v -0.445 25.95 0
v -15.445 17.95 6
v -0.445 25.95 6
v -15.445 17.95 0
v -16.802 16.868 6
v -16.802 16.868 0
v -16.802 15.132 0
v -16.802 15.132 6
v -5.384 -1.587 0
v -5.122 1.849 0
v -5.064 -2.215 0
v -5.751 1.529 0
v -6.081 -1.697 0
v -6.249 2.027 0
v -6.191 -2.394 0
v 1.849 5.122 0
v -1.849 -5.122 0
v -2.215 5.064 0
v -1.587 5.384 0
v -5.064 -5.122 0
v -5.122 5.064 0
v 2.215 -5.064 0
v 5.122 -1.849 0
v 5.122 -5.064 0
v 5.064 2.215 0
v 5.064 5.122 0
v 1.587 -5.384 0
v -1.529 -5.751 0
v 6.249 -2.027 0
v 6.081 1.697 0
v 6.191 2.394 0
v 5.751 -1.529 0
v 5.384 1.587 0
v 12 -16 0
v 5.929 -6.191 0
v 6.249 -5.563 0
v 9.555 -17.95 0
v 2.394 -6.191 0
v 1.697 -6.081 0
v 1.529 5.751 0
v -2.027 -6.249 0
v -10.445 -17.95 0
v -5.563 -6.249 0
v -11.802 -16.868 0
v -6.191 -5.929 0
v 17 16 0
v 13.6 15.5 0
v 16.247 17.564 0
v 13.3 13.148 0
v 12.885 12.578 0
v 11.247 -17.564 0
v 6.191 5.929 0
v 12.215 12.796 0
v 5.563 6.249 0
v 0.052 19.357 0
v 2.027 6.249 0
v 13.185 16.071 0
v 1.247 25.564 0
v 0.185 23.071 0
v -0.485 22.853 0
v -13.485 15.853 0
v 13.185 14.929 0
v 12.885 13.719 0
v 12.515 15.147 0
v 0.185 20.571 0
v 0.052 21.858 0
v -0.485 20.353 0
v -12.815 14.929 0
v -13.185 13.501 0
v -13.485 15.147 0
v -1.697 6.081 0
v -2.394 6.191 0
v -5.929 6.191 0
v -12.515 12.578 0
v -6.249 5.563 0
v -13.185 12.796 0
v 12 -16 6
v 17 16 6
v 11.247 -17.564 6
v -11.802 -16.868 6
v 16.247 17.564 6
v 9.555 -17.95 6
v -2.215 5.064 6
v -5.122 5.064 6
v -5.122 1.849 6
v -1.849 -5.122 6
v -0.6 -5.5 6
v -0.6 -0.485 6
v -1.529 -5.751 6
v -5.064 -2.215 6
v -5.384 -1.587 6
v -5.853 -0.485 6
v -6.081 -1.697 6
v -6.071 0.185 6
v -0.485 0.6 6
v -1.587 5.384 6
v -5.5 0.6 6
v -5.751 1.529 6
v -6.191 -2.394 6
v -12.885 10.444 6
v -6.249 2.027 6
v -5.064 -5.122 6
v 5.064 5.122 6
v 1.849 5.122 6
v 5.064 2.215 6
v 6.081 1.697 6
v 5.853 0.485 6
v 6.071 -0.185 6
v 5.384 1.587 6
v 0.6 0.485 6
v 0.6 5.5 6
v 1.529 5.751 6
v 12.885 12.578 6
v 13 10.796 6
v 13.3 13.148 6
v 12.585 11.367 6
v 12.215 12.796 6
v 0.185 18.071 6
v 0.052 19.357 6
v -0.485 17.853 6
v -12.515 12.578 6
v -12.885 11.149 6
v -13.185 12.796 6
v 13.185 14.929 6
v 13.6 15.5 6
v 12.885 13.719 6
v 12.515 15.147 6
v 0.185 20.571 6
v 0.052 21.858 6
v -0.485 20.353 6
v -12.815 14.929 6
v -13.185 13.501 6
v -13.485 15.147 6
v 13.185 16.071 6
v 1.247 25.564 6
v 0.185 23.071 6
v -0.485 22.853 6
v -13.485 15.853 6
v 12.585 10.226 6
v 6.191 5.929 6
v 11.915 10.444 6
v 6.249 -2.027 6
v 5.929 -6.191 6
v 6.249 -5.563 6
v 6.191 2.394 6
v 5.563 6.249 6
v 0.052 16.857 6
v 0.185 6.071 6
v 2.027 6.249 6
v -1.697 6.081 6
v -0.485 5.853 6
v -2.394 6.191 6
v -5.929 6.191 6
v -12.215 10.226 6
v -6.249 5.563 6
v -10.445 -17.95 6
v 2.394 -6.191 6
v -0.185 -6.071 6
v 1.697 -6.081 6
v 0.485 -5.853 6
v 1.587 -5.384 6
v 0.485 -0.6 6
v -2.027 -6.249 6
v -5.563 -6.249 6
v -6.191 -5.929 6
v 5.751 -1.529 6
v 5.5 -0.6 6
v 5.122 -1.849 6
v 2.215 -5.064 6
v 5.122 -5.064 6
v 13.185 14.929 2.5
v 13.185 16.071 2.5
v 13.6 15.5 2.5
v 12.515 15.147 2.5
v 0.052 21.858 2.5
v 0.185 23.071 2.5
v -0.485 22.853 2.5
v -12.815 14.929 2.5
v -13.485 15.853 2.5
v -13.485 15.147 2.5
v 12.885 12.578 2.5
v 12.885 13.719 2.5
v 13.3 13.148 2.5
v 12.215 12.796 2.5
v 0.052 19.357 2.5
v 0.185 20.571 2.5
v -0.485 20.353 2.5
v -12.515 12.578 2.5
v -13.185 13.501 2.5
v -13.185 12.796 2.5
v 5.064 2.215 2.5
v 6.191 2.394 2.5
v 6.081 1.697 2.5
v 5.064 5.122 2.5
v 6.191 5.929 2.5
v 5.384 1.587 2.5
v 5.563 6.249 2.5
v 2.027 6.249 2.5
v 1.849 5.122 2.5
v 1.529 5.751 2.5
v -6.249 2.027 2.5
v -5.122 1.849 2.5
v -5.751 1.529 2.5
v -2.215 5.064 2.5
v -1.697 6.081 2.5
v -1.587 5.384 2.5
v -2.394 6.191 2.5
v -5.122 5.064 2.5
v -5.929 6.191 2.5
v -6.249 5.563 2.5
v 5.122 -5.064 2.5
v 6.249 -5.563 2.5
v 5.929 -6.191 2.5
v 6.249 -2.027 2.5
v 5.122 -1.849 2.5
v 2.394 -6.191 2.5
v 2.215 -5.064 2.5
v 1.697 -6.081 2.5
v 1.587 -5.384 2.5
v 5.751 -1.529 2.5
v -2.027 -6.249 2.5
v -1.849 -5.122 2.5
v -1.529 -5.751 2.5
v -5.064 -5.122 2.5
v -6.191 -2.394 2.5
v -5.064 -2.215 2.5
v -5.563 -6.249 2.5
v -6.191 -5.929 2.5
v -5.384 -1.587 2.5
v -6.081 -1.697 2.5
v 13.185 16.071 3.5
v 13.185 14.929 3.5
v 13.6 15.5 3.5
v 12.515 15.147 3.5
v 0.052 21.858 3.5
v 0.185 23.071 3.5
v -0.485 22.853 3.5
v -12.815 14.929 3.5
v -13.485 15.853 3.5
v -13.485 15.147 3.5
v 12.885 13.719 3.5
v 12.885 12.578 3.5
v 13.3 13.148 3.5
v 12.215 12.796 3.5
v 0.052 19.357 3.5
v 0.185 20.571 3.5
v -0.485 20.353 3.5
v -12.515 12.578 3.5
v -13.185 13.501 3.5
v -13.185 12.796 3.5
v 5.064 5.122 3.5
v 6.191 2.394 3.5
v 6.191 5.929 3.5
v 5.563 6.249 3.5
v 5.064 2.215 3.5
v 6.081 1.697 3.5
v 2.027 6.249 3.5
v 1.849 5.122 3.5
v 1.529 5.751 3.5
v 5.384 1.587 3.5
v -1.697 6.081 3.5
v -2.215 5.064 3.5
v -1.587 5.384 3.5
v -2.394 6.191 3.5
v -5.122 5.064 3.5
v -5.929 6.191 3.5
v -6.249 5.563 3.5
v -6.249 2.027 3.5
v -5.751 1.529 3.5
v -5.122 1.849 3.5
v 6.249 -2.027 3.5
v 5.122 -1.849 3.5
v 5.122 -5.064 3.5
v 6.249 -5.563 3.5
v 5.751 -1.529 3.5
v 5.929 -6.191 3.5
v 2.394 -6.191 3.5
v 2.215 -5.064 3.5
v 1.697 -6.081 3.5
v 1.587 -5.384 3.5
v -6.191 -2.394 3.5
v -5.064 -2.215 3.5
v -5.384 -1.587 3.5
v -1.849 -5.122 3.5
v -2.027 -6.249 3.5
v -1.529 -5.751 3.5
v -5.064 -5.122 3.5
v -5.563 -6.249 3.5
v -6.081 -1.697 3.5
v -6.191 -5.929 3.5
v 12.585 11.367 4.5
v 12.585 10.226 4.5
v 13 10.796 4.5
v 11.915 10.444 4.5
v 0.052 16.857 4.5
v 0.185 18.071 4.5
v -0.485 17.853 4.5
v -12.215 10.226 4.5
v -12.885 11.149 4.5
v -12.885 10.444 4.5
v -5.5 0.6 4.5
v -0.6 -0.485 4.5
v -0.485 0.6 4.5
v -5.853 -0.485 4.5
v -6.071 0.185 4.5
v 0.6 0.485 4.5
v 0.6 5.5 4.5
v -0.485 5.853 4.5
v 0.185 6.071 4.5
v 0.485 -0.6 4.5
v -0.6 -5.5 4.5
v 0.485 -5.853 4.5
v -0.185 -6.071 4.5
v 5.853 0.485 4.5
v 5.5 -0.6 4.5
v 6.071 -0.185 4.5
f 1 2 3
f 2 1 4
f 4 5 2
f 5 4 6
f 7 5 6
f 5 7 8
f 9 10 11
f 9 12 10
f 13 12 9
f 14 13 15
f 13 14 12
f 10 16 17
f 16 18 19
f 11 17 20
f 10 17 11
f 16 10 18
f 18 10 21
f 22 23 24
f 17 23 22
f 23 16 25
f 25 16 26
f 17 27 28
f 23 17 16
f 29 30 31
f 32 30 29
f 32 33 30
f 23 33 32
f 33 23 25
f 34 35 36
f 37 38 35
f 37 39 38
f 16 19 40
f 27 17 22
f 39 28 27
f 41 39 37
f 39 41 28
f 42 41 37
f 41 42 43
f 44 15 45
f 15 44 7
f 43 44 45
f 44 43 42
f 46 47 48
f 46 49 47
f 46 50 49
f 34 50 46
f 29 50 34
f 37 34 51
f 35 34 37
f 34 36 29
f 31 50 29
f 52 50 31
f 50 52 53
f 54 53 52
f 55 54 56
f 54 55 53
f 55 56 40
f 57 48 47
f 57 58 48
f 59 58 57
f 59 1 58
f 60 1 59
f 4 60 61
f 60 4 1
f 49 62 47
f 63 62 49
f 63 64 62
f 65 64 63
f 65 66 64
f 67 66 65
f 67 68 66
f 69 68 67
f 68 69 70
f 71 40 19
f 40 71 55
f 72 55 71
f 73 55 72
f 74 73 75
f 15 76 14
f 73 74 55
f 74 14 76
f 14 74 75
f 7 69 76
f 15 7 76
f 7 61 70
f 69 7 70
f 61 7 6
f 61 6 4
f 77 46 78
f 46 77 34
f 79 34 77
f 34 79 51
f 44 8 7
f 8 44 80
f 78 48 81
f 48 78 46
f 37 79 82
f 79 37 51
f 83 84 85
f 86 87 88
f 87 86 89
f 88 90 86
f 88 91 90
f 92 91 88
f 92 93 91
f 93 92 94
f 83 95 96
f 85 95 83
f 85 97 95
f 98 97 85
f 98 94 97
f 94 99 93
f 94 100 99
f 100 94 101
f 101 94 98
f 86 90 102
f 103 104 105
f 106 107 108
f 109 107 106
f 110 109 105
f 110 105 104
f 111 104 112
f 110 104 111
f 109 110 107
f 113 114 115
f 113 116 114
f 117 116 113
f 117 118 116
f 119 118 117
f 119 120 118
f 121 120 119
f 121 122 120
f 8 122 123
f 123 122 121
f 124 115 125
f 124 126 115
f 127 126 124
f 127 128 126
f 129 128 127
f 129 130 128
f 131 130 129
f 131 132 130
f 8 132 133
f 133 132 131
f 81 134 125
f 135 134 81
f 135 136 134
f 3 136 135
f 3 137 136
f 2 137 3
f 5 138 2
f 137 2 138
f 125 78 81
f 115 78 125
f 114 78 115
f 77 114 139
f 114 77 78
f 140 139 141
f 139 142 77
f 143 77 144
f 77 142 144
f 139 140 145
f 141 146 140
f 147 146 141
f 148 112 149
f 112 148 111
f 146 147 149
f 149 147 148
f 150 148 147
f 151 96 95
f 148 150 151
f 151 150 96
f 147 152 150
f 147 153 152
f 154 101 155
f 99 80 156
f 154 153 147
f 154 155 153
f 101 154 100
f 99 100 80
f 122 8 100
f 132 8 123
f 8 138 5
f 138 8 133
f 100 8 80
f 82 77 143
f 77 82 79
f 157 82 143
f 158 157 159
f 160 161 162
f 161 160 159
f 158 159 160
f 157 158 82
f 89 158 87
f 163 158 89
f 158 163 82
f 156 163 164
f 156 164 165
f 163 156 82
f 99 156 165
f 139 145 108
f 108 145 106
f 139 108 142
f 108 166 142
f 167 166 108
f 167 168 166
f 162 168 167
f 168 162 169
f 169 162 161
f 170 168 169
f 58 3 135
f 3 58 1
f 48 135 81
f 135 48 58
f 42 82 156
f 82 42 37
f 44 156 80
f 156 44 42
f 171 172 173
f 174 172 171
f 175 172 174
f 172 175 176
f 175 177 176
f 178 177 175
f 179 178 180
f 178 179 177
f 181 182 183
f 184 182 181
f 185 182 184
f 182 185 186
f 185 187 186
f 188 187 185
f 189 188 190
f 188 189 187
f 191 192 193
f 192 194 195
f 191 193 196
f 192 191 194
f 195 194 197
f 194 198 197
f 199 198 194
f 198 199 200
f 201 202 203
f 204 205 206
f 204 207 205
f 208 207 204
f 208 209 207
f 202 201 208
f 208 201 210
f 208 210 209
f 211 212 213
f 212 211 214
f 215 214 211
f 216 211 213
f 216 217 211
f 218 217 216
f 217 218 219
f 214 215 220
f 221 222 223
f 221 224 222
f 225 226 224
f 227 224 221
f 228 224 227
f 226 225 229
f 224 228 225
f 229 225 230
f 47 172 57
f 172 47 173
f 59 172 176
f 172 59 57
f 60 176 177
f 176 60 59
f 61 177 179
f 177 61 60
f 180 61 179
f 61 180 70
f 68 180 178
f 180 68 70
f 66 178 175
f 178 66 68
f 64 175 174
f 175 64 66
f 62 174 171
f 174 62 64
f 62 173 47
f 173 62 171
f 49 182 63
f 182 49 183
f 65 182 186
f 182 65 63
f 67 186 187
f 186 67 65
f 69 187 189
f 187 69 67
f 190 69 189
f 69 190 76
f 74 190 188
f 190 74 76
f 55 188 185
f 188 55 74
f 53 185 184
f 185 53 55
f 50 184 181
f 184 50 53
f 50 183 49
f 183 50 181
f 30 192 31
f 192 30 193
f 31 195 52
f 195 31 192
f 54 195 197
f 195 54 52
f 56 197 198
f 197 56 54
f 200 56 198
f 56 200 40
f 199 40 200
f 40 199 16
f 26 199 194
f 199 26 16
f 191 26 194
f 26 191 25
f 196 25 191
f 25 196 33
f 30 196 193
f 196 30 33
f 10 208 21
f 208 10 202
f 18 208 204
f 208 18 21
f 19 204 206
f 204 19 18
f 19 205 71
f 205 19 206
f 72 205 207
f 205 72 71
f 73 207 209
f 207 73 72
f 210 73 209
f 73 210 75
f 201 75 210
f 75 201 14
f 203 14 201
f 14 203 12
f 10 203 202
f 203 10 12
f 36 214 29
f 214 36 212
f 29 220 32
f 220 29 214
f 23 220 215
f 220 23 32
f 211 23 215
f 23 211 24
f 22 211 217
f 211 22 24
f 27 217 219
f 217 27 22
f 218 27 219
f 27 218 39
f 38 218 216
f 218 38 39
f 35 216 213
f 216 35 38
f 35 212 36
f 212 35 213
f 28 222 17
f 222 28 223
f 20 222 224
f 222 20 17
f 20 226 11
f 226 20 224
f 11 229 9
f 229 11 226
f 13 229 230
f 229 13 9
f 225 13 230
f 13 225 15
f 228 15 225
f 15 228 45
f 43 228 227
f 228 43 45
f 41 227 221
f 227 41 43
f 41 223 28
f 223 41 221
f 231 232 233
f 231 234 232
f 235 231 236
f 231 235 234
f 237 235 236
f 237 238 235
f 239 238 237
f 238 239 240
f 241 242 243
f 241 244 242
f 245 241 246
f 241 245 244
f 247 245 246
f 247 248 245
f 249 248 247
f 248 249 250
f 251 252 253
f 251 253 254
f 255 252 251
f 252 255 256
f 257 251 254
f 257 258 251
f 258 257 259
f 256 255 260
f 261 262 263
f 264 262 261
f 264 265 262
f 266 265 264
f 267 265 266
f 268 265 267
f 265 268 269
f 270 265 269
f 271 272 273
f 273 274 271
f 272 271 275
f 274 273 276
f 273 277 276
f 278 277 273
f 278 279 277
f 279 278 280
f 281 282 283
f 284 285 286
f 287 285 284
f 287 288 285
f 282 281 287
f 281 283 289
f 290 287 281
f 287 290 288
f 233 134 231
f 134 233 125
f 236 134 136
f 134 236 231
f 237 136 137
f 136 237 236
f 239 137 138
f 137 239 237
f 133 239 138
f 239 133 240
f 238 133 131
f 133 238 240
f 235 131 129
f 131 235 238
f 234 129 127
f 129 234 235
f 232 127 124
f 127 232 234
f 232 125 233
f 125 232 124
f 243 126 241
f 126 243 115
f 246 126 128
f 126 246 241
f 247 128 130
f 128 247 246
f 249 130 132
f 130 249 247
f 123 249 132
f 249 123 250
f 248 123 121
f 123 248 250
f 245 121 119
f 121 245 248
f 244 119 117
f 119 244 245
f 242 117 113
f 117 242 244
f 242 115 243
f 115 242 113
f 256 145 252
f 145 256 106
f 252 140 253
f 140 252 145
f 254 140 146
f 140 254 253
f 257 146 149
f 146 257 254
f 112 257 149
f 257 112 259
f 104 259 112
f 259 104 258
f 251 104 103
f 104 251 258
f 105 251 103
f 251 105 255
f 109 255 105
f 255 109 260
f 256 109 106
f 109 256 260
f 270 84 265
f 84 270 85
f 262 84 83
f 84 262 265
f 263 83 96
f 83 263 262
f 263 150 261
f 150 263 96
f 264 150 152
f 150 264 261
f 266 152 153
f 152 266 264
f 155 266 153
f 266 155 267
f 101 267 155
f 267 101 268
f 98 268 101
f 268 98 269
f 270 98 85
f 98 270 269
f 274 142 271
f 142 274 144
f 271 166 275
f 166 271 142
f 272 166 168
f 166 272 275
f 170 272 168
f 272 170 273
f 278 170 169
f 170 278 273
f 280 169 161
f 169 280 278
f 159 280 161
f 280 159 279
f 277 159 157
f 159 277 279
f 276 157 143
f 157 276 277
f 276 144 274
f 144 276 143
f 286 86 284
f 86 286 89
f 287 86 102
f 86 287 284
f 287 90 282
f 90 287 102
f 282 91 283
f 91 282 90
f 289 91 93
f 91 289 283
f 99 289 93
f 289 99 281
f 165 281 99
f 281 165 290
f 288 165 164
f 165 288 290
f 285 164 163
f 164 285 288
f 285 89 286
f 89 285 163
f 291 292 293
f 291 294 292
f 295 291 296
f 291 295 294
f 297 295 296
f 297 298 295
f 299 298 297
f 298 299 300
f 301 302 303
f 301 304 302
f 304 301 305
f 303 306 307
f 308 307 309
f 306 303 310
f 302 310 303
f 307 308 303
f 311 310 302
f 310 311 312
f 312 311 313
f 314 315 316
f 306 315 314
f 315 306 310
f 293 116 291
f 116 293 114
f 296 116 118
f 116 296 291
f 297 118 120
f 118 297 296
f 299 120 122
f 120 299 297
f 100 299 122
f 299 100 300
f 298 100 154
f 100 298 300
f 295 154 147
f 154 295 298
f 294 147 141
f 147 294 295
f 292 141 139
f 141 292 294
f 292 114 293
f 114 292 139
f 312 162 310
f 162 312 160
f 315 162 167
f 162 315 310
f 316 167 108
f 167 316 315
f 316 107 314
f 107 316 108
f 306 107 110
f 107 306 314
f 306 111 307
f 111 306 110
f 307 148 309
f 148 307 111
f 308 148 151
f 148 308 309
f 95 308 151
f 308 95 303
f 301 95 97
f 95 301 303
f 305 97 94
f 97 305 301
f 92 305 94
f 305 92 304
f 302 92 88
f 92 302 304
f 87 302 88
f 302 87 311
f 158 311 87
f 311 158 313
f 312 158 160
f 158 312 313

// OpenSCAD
// file: moves/range.scad
module shogi_move_range(edges=[0], thick=0.6) {
    for (a=edges) {
        rotate(a=a*45) {
            hull() {
                translate([-2.5, 5.5, 0]) circle(thick);
                translate([0, 8, 0]) circle(thick);
            }

            hull() {
                translate([0, 8, 0]) circle(thick);
                translate([2.5, 5.5, 0]) circle(thick);
            }
        }
    }
}
// file: moves/step.scad
module shogi_move_step(edges=[0], length=6, thick=0.6) {
    for (a=edges) {
        rotate(a=a*45) hull() {
            circle(thick);
            translate([0, length, 0]) circle(thick);
        }
    }
}
// file: ranks/rank3.scad
module shogi_rank_3(thick=0.6) {
    hull() {
        translate([-12.4, 10.796364, 0]) circle(thick);
        translate([0, 17.5, 0]) circle(thick);
    }

    hull() {
        translate([0, 17.5, 0]) circle(thick);
        translate([12.4, 10.796364, 0]) circle(thick);
    }
}
// file: ranks/rank2.scad
module shogi_rank_2(thick=0.6) {
    hull() {
        translate([-12.7, 13.148182, 0]) circle(thick);
        translate([0, 20, 0]) circle(thick);
    }

    hull() {
        translate([0, 20, 0]) circle(thick);
        translate([12.7, 13.148182, 0]) circle(thick);
    }
}
// file: ranks/rank1.scad
module shogi_rank_1(thick=0.6) {
    hull() {
        translate([-13, 15.5, 0]) circle(thick);
        translate([0, 22.5, 0]) circle(thick);
    }

    hull() {
        translate([0, 22.5, 0]) circle(thick);
        translate([13, 15.5, 0]) circle(thick);
    }
}
// file: koma/slim.scad
module shogi_koma_slim(width=30, length=40, rounding=2) {
    points=[
        [width/6 , 0],
        [0, length*0.8],
        [width/2, length],
        [width, length*0.8],
        [5*width/6, 0]
    ];

    minkowski() {
        polygon(points);
        circle(rounding);
    }
}
// file: base/piece.scad
module shogi_piece(thick=6) {
    unit=thick/12;

    difference() {
        translate([-15, -16, 0])
        linear_extrude(thick) children(0);
        translate([0, 0, -1*unit]) linear_extrude(6*unit) children(1);
        translate([0, 0, 7*unit]) linear_extrude(6*unit) children(2);
        translate([0, 0, 9*unit]) linear_extrude(6*unit) children(3);
    }
}
// main file
use <base/piece.scad>;
use <koma/slim.scad>;
use <ranks/rank1.scad>;
use <ranks/rank2.scad>;
use <ranks/rank3.scad>;
use <moves/step.scad>;
use <moves/range.scad>;

shogi_piece() {
    shogi_koma_slim();
    union() {
        shogi_rank_1();
        shogi_rank_2();
        shogi_move_range(edges=[1, 3, 5, 7]);
    }
    union() {
        shogi_rank_1();
        shogi_rank_2();
        shogi_move_range(edges=[1, 3, 5, 7]);
    }
    union() {
        shogi_rank_3();
        shogi_move_step(edges=[0, 2, 4, 6], length=5.5);
    }
}
